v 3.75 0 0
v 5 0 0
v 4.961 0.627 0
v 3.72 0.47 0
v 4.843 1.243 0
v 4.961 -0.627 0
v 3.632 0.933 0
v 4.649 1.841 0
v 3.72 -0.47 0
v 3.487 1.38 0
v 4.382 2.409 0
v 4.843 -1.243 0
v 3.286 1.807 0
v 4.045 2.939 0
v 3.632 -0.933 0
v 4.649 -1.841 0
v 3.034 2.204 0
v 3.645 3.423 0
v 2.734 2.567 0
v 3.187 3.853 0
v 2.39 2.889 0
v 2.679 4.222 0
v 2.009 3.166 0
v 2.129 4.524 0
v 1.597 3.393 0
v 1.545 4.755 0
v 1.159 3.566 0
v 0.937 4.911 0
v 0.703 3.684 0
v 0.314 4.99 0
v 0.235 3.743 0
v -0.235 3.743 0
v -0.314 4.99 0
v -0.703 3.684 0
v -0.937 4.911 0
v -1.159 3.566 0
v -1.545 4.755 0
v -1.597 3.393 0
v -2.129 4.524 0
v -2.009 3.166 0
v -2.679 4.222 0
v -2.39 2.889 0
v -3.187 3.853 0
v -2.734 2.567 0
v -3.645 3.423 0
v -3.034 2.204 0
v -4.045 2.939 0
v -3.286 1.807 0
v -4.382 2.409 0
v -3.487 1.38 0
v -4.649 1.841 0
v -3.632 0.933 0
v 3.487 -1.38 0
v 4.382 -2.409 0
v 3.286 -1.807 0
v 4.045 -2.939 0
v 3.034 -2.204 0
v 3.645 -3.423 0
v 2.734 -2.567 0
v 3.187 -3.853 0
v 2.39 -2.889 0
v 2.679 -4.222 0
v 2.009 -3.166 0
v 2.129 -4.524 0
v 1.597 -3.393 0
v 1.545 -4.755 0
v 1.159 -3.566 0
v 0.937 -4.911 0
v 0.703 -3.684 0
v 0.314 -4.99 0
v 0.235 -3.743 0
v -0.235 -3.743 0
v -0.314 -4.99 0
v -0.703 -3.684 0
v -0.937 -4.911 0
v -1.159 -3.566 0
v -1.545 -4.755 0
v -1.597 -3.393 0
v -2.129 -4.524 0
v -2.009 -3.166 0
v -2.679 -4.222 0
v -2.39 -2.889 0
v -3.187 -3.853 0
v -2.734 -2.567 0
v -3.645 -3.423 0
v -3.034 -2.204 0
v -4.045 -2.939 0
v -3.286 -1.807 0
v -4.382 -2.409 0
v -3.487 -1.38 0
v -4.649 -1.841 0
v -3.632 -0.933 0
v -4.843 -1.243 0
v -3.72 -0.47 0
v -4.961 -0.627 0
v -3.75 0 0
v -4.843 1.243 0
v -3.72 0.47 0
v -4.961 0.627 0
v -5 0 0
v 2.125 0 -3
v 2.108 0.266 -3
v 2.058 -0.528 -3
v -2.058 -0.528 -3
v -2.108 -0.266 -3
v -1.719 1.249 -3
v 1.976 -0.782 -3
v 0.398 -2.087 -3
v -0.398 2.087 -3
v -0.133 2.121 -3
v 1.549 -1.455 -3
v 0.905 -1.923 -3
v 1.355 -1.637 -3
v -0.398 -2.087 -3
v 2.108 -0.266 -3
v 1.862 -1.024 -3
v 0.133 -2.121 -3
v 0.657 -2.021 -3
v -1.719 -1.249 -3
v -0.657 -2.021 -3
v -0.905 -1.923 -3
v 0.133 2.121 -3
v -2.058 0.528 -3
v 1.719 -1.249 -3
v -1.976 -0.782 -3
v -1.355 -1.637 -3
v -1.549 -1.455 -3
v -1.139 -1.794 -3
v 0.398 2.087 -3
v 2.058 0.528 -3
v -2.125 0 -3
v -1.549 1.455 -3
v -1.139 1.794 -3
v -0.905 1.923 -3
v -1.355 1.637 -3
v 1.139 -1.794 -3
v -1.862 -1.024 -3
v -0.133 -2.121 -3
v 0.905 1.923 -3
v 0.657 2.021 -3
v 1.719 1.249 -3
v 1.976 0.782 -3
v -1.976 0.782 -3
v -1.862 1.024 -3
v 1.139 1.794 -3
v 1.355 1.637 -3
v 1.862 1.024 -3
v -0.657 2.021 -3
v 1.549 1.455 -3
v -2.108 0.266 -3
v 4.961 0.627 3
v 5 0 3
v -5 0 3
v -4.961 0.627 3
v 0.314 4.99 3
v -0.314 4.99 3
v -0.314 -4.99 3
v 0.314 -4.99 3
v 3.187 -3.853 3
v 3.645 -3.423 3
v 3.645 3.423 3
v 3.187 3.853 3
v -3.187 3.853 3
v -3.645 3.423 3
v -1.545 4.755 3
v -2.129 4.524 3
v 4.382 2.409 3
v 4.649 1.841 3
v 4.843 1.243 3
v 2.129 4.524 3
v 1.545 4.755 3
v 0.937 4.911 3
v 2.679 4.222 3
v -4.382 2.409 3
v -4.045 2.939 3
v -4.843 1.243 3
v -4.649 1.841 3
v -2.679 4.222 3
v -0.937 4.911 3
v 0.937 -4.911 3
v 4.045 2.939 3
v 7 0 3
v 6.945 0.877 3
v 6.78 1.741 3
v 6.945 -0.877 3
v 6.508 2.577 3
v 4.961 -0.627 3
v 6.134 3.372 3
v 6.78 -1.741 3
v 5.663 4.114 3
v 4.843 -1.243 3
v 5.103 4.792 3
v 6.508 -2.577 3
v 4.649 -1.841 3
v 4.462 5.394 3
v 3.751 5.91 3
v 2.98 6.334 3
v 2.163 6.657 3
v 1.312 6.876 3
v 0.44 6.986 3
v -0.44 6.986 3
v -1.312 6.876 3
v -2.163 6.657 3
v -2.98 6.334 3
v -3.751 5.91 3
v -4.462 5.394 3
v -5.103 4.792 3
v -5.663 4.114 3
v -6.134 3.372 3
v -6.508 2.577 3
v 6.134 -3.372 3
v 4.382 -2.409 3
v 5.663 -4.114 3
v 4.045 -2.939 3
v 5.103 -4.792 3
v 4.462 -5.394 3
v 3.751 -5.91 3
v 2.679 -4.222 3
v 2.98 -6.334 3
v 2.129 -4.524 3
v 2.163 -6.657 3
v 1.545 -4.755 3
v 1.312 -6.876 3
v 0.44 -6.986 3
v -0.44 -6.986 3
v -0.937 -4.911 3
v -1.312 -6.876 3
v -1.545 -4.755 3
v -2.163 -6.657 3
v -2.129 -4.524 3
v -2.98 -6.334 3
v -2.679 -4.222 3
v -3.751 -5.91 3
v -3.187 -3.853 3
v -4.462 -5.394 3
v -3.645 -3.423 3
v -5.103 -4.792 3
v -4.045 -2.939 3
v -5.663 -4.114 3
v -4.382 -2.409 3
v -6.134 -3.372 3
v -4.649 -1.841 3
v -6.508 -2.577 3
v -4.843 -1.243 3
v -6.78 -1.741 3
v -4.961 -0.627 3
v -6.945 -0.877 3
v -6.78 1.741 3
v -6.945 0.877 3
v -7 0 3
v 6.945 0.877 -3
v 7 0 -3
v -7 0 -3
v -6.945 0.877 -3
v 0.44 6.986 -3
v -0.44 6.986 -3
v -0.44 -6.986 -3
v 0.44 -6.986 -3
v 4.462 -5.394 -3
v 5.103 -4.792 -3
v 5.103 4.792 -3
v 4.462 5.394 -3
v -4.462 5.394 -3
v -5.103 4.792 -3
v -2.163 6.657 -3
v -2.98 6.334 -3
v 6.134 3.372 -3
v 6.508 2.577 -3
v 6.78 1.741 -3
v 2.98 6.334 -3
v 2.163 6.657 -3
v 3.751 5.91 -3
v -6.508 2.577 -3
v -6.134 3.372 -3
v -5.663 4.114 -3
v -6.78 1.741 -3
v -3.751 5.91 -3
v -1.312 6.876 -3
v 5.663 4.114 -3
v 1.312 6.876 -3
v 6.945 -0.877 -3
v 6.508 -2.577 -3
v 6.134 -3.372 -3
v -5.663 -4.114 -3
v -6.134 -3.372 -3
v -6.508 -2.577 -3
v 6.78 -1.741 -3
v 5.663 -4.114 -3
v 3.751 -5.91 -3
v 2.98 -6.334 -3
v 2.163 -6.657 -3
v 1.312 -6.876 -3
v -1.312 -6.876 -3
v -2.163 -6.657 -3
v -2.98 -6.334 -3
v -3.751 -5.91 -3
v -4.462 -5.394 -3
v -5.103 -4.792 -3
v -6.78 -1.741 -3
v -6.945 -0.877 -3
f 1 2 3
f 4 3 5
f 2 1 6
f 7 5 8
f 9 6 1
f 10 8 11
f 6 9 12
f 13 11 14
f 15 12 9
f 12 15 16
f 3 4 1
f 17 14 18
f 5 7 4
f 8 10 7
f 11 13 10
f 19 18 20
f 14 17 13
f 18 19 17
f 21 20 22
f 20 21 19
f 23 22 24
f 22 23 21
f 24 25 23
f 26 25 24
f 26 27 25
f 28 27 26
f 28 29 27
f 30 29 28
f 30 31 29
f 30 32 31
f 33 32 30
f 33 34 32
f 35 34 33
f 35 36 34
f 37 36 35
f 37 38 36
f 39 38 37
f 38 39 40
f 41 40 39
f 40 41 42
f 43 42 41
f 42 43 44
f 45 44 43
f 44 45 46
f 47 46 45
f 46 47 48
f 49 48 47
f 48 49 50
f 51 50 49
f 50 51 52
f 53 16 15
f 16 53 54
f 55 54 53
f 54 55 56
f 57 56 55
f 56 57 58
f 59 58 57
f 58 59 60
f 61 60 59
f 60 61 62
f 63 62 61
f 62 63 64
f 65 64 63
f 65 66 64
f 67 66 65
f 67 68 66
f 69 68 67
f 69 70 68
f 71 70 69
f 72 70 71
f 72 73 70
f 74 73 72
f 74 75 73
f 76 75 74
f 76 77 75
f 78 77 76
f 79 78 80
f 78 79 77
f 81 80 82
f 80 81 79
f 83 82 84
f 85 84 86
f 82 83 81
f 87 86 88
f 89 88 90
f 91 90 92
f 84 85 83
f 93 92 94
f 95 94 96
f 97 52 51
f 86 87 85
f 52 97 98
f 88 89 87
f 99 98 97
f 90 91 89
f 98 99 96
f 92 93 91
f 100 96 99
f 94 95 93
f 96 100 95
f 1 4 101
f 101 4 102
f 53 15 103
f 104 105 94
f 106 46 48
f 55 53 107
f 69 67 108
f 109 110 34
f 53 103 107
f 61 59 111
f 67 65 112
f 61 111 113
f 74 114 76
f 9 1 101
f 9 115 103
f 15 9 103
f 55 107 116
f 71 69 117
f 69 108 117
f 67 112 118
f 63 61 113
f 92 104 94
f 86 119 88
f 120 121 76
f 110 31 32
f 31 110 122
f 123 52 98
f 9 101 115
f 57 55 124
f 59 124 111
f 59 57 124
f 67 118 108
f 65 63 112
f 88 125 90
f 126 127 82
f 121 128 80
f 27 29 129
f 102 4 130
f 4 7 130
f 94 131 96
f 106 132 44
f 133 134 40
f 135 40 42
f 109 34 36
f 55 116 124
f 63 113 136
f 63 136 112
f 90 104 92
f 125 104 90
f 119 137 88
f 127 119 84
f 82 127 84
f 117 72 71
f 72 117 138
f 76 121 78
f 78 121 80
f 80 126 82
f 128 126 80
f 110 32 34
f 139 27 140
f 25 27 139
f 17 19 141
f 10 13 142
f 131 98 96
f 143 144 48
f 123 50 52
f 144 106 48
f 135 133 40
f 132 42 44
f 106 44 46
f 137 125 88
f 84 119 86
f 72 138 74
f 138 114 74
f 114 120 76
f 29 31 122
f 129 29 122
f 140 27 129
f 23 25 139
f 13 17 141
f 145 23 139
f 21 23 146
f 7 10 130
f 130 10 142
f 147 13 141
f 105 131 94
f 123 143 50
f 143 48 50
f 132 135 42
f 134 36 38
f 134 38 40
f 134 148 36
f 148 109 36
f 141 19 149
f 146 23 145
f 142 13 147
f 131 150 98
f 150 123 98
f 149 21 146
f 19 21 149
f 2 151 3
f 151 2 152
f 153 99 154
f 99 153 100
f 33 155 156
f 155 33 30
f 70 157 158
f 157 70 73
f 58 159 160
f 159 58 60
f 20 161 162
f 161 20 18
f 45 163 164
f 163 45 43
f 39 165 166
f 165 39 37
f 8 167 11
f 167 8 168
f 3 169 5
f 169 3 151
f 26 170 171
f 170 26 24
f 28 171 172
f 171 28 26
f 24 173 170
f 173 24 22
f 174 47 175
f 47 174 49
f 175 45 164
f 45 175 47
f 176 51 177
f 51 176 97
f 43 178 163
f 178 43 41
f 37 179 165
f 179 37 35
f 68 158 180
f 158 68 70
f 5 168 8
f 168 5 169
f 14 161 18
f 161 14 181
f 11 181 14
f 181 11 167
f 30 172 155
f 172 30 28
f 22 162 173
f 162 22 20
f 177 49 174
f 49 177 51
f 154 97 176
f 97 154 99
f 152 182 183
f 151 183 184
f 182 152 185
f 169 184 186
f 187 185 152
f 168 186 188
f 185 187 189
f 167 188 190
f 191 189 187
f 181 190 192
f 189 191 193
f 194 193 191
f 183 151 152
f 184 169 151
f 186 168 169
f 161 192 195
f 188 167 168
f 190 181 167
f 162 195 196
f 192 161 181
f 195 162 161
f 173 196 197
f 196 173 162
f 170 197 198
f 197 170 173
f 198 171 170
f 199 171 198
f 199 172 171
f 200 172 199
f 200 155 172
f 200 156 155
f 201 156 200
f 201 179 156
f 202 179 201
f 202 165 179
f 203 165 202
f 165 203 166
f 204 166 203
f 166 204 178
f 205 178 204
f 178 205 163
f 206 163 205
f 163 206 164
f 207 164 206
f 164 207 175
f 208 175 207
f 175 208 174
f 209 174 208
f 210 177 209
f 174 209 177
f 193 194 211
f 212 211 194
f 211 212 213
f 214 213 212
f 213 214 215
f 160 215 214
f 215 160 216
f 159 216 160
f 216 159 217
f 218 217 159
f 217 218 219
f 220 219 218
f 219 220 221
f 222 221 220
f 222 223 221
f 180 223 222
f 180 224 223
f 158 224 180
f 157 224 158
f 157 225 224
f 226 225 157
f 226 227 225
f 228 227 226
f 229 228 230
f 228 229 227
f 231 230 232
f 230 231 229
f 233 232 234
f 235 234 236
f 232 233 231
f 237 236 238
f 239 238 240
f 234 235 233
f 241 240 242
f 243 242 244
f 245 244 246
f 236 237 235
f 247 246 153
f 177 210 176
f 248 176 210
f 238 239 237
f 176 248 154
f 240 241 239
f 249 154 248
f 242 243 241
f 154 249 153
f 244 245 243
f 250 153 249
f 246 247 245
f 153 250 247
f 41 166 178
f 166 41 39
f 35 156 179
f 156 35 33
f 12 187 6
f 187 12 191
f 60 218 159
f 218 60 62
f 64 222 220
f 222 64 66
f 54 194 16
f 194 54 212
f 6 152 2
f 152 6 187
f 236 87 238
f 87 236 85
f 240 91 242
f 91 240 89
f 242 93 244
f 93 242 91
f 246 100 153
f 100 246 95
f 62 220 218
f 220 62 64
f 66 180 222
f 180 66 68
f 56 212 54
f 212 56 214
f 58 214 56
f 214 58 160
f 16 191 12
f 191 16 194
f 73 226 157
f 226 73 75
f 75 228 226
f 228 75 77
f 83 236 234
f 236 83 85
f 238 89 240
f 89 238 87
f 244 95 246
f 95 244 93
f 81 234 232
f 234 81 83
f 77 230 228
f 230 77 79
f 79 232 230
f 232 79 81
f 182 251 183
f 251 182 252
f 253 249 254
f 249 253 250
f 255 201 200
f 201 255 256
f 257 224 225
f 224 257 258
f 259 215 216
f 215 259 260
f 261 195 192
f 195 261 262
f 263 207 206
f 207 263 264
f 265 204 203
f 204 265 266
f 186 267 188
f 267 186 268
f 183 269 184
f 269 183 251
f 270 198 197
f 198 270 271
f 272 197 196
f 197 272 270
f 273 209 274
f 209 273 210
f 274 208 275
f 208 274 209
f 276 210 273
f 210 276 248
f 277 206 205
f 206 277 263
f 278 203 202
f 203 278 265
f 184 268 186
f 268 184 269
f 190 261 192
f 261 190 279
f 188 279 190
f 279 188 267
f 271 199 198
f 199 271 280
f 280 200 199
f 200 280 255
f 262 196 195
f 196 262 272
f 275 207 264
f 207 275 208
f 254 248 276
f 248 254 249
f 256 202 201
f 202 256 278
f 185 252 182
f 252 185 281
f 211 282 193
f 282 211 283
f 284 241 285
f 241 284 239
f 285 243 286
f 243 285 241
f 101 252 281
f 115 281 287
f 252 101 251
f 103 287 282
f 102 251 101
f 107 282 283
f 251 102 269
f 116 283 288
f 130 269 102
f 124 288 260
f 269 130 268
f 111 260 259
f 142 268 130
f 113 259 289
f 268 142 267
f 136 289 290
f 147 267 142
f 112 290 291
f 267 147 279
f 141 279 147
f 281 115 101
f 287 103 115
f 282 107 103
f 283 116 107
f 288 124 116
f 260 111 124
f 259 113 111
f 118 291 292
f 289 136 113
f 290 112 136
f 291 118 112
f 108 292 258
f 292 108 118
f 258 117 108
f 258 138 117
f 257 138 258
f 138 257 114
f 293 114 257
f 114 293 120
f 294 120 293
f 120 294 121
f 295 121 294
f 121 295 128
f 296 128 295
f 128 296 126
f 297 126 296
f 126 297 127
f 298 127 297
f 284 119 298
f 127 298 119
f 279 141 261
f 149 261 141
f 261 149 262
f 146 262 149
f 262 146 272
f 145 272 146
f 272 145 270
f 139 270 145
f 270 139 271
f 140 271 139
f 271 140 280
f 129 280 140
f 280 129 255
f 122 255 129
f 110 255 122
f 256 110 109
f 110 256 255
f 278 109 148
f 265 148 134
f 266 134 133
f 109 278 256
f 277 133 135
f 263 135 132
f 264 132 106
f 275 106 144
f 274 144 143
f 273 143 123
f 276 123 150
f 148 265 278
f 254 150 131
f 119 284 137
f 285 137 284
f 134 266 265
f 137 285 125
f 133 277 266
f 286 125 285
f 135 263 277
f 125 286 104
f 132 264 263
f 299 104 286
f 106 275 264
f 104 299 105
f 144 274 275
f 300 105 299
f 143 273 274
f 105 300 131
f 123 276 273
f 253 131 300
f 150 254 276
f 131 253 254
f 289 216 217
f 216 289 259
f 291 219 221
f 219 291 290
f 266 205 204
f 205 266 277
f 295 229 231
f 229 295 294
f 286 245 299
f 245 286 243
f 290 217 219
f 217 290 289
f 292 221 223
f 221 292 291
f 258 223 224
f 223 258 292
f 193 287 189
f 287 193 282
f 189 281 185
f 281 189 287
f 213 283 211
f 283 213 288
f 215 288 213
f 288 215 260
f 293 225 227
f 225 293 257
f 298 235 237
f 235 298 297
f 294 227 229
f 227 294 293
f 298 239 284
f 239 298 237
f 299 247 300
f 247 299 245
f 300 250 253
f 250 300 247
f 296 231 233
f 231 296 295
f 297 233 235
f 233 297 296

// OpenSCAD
$fn = 50;


difference() {
	union() {
		translate(v = [0, 0, -3.0000000000]) {
			cylinder(h = 6, r = 7.0000000000);
		}
	}
	union() {
		translate(v = [0, 0, 0]) {
			rotate(a = [0, 0, 0]) {
				difference() {
					union() {
						translate(v = [0, 0, -6.0000000000]) {
							cylinder(h = 6, r = 2.0000000000);
						}
						translate(v = [0, 0, -3]) {
							cylinder(h = 3, r1 = 2.1250000000, r2 = 3.7500000000);
						}
						translate(v = [0, 0, -6.0000000000]) {
							cylinder(h = 6, r = 2.1250000000);
						}
						translate(v = [0, 0, -6.0000000000]) {
							cylinder(h = 6, r = 2.0000000000);
						}
					}
					union();
				}
			}
		}
		#cylinder(h = 3, r = 5.0000000000);
	}
}
